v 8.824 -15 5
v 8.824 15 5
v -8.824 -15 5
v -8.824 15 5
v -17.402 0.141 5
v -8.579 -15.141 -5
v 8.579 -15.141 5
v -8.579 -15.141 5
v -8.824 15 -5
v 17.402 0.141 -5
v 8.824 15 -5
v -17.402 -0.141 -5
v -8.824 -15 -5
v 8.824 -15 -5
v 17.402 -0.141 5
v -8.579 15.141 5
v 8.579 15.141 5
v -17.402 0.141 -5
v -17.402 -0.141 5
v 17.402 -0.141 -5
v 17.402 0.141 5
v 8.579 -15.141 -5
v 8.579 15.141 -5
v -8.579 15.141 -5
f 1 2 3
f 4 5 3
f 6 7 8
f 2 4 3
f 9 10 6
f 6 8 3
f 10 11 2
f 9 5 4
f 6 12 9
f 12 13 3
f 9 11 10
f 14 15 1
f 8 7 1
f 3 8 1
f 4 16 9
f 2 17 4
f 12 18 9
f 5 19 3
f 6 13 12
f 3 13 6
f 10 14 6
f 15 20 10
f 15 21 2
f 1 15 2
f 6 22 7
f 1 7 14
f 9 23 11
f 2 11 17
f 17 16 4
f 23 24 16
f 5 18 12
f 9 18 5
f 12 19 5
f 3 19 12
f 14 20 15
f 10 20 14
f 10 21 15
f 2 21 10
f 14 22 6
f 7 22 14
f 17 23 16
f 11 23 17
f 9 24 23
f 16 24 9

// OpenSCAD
//---------------------------
// Réalisation hexagone
//---------------------------
$fn = 64;

    fhex(30,10);

module phex(wid,rad,height){
hull(){
translate([wid/2-rad,0,0])cylinder(r=rad,h=height);
rotate([0,0,60])translate([wid/2-rad,0,0])cylinder(r=rad,h=height);
rotate([0,0,120])translate([wid/2-rad,0,0])cylinder(r=rad,h=height);
rotate([0,0,180])translate([wid/2-rad,0,0])cylinder(r=rad,h=height);
rotate([0,0,240])translate([wid/2-rad,0,0])cylinder(r=rad,h=height);
rotate([0,0,300])translate([wid/2-rad,0,0])cylinder(r=rad,h=height);

}
}

module fhex(wid,height){
hull(){
cube([wid/1.7,wid,height],center = true);
rotate([0,0,120])cube([wid/1.7,wid,height],center = true);
rotate([0,0,240])cube([wid/1.7,wid,height],center = true);
}
}
